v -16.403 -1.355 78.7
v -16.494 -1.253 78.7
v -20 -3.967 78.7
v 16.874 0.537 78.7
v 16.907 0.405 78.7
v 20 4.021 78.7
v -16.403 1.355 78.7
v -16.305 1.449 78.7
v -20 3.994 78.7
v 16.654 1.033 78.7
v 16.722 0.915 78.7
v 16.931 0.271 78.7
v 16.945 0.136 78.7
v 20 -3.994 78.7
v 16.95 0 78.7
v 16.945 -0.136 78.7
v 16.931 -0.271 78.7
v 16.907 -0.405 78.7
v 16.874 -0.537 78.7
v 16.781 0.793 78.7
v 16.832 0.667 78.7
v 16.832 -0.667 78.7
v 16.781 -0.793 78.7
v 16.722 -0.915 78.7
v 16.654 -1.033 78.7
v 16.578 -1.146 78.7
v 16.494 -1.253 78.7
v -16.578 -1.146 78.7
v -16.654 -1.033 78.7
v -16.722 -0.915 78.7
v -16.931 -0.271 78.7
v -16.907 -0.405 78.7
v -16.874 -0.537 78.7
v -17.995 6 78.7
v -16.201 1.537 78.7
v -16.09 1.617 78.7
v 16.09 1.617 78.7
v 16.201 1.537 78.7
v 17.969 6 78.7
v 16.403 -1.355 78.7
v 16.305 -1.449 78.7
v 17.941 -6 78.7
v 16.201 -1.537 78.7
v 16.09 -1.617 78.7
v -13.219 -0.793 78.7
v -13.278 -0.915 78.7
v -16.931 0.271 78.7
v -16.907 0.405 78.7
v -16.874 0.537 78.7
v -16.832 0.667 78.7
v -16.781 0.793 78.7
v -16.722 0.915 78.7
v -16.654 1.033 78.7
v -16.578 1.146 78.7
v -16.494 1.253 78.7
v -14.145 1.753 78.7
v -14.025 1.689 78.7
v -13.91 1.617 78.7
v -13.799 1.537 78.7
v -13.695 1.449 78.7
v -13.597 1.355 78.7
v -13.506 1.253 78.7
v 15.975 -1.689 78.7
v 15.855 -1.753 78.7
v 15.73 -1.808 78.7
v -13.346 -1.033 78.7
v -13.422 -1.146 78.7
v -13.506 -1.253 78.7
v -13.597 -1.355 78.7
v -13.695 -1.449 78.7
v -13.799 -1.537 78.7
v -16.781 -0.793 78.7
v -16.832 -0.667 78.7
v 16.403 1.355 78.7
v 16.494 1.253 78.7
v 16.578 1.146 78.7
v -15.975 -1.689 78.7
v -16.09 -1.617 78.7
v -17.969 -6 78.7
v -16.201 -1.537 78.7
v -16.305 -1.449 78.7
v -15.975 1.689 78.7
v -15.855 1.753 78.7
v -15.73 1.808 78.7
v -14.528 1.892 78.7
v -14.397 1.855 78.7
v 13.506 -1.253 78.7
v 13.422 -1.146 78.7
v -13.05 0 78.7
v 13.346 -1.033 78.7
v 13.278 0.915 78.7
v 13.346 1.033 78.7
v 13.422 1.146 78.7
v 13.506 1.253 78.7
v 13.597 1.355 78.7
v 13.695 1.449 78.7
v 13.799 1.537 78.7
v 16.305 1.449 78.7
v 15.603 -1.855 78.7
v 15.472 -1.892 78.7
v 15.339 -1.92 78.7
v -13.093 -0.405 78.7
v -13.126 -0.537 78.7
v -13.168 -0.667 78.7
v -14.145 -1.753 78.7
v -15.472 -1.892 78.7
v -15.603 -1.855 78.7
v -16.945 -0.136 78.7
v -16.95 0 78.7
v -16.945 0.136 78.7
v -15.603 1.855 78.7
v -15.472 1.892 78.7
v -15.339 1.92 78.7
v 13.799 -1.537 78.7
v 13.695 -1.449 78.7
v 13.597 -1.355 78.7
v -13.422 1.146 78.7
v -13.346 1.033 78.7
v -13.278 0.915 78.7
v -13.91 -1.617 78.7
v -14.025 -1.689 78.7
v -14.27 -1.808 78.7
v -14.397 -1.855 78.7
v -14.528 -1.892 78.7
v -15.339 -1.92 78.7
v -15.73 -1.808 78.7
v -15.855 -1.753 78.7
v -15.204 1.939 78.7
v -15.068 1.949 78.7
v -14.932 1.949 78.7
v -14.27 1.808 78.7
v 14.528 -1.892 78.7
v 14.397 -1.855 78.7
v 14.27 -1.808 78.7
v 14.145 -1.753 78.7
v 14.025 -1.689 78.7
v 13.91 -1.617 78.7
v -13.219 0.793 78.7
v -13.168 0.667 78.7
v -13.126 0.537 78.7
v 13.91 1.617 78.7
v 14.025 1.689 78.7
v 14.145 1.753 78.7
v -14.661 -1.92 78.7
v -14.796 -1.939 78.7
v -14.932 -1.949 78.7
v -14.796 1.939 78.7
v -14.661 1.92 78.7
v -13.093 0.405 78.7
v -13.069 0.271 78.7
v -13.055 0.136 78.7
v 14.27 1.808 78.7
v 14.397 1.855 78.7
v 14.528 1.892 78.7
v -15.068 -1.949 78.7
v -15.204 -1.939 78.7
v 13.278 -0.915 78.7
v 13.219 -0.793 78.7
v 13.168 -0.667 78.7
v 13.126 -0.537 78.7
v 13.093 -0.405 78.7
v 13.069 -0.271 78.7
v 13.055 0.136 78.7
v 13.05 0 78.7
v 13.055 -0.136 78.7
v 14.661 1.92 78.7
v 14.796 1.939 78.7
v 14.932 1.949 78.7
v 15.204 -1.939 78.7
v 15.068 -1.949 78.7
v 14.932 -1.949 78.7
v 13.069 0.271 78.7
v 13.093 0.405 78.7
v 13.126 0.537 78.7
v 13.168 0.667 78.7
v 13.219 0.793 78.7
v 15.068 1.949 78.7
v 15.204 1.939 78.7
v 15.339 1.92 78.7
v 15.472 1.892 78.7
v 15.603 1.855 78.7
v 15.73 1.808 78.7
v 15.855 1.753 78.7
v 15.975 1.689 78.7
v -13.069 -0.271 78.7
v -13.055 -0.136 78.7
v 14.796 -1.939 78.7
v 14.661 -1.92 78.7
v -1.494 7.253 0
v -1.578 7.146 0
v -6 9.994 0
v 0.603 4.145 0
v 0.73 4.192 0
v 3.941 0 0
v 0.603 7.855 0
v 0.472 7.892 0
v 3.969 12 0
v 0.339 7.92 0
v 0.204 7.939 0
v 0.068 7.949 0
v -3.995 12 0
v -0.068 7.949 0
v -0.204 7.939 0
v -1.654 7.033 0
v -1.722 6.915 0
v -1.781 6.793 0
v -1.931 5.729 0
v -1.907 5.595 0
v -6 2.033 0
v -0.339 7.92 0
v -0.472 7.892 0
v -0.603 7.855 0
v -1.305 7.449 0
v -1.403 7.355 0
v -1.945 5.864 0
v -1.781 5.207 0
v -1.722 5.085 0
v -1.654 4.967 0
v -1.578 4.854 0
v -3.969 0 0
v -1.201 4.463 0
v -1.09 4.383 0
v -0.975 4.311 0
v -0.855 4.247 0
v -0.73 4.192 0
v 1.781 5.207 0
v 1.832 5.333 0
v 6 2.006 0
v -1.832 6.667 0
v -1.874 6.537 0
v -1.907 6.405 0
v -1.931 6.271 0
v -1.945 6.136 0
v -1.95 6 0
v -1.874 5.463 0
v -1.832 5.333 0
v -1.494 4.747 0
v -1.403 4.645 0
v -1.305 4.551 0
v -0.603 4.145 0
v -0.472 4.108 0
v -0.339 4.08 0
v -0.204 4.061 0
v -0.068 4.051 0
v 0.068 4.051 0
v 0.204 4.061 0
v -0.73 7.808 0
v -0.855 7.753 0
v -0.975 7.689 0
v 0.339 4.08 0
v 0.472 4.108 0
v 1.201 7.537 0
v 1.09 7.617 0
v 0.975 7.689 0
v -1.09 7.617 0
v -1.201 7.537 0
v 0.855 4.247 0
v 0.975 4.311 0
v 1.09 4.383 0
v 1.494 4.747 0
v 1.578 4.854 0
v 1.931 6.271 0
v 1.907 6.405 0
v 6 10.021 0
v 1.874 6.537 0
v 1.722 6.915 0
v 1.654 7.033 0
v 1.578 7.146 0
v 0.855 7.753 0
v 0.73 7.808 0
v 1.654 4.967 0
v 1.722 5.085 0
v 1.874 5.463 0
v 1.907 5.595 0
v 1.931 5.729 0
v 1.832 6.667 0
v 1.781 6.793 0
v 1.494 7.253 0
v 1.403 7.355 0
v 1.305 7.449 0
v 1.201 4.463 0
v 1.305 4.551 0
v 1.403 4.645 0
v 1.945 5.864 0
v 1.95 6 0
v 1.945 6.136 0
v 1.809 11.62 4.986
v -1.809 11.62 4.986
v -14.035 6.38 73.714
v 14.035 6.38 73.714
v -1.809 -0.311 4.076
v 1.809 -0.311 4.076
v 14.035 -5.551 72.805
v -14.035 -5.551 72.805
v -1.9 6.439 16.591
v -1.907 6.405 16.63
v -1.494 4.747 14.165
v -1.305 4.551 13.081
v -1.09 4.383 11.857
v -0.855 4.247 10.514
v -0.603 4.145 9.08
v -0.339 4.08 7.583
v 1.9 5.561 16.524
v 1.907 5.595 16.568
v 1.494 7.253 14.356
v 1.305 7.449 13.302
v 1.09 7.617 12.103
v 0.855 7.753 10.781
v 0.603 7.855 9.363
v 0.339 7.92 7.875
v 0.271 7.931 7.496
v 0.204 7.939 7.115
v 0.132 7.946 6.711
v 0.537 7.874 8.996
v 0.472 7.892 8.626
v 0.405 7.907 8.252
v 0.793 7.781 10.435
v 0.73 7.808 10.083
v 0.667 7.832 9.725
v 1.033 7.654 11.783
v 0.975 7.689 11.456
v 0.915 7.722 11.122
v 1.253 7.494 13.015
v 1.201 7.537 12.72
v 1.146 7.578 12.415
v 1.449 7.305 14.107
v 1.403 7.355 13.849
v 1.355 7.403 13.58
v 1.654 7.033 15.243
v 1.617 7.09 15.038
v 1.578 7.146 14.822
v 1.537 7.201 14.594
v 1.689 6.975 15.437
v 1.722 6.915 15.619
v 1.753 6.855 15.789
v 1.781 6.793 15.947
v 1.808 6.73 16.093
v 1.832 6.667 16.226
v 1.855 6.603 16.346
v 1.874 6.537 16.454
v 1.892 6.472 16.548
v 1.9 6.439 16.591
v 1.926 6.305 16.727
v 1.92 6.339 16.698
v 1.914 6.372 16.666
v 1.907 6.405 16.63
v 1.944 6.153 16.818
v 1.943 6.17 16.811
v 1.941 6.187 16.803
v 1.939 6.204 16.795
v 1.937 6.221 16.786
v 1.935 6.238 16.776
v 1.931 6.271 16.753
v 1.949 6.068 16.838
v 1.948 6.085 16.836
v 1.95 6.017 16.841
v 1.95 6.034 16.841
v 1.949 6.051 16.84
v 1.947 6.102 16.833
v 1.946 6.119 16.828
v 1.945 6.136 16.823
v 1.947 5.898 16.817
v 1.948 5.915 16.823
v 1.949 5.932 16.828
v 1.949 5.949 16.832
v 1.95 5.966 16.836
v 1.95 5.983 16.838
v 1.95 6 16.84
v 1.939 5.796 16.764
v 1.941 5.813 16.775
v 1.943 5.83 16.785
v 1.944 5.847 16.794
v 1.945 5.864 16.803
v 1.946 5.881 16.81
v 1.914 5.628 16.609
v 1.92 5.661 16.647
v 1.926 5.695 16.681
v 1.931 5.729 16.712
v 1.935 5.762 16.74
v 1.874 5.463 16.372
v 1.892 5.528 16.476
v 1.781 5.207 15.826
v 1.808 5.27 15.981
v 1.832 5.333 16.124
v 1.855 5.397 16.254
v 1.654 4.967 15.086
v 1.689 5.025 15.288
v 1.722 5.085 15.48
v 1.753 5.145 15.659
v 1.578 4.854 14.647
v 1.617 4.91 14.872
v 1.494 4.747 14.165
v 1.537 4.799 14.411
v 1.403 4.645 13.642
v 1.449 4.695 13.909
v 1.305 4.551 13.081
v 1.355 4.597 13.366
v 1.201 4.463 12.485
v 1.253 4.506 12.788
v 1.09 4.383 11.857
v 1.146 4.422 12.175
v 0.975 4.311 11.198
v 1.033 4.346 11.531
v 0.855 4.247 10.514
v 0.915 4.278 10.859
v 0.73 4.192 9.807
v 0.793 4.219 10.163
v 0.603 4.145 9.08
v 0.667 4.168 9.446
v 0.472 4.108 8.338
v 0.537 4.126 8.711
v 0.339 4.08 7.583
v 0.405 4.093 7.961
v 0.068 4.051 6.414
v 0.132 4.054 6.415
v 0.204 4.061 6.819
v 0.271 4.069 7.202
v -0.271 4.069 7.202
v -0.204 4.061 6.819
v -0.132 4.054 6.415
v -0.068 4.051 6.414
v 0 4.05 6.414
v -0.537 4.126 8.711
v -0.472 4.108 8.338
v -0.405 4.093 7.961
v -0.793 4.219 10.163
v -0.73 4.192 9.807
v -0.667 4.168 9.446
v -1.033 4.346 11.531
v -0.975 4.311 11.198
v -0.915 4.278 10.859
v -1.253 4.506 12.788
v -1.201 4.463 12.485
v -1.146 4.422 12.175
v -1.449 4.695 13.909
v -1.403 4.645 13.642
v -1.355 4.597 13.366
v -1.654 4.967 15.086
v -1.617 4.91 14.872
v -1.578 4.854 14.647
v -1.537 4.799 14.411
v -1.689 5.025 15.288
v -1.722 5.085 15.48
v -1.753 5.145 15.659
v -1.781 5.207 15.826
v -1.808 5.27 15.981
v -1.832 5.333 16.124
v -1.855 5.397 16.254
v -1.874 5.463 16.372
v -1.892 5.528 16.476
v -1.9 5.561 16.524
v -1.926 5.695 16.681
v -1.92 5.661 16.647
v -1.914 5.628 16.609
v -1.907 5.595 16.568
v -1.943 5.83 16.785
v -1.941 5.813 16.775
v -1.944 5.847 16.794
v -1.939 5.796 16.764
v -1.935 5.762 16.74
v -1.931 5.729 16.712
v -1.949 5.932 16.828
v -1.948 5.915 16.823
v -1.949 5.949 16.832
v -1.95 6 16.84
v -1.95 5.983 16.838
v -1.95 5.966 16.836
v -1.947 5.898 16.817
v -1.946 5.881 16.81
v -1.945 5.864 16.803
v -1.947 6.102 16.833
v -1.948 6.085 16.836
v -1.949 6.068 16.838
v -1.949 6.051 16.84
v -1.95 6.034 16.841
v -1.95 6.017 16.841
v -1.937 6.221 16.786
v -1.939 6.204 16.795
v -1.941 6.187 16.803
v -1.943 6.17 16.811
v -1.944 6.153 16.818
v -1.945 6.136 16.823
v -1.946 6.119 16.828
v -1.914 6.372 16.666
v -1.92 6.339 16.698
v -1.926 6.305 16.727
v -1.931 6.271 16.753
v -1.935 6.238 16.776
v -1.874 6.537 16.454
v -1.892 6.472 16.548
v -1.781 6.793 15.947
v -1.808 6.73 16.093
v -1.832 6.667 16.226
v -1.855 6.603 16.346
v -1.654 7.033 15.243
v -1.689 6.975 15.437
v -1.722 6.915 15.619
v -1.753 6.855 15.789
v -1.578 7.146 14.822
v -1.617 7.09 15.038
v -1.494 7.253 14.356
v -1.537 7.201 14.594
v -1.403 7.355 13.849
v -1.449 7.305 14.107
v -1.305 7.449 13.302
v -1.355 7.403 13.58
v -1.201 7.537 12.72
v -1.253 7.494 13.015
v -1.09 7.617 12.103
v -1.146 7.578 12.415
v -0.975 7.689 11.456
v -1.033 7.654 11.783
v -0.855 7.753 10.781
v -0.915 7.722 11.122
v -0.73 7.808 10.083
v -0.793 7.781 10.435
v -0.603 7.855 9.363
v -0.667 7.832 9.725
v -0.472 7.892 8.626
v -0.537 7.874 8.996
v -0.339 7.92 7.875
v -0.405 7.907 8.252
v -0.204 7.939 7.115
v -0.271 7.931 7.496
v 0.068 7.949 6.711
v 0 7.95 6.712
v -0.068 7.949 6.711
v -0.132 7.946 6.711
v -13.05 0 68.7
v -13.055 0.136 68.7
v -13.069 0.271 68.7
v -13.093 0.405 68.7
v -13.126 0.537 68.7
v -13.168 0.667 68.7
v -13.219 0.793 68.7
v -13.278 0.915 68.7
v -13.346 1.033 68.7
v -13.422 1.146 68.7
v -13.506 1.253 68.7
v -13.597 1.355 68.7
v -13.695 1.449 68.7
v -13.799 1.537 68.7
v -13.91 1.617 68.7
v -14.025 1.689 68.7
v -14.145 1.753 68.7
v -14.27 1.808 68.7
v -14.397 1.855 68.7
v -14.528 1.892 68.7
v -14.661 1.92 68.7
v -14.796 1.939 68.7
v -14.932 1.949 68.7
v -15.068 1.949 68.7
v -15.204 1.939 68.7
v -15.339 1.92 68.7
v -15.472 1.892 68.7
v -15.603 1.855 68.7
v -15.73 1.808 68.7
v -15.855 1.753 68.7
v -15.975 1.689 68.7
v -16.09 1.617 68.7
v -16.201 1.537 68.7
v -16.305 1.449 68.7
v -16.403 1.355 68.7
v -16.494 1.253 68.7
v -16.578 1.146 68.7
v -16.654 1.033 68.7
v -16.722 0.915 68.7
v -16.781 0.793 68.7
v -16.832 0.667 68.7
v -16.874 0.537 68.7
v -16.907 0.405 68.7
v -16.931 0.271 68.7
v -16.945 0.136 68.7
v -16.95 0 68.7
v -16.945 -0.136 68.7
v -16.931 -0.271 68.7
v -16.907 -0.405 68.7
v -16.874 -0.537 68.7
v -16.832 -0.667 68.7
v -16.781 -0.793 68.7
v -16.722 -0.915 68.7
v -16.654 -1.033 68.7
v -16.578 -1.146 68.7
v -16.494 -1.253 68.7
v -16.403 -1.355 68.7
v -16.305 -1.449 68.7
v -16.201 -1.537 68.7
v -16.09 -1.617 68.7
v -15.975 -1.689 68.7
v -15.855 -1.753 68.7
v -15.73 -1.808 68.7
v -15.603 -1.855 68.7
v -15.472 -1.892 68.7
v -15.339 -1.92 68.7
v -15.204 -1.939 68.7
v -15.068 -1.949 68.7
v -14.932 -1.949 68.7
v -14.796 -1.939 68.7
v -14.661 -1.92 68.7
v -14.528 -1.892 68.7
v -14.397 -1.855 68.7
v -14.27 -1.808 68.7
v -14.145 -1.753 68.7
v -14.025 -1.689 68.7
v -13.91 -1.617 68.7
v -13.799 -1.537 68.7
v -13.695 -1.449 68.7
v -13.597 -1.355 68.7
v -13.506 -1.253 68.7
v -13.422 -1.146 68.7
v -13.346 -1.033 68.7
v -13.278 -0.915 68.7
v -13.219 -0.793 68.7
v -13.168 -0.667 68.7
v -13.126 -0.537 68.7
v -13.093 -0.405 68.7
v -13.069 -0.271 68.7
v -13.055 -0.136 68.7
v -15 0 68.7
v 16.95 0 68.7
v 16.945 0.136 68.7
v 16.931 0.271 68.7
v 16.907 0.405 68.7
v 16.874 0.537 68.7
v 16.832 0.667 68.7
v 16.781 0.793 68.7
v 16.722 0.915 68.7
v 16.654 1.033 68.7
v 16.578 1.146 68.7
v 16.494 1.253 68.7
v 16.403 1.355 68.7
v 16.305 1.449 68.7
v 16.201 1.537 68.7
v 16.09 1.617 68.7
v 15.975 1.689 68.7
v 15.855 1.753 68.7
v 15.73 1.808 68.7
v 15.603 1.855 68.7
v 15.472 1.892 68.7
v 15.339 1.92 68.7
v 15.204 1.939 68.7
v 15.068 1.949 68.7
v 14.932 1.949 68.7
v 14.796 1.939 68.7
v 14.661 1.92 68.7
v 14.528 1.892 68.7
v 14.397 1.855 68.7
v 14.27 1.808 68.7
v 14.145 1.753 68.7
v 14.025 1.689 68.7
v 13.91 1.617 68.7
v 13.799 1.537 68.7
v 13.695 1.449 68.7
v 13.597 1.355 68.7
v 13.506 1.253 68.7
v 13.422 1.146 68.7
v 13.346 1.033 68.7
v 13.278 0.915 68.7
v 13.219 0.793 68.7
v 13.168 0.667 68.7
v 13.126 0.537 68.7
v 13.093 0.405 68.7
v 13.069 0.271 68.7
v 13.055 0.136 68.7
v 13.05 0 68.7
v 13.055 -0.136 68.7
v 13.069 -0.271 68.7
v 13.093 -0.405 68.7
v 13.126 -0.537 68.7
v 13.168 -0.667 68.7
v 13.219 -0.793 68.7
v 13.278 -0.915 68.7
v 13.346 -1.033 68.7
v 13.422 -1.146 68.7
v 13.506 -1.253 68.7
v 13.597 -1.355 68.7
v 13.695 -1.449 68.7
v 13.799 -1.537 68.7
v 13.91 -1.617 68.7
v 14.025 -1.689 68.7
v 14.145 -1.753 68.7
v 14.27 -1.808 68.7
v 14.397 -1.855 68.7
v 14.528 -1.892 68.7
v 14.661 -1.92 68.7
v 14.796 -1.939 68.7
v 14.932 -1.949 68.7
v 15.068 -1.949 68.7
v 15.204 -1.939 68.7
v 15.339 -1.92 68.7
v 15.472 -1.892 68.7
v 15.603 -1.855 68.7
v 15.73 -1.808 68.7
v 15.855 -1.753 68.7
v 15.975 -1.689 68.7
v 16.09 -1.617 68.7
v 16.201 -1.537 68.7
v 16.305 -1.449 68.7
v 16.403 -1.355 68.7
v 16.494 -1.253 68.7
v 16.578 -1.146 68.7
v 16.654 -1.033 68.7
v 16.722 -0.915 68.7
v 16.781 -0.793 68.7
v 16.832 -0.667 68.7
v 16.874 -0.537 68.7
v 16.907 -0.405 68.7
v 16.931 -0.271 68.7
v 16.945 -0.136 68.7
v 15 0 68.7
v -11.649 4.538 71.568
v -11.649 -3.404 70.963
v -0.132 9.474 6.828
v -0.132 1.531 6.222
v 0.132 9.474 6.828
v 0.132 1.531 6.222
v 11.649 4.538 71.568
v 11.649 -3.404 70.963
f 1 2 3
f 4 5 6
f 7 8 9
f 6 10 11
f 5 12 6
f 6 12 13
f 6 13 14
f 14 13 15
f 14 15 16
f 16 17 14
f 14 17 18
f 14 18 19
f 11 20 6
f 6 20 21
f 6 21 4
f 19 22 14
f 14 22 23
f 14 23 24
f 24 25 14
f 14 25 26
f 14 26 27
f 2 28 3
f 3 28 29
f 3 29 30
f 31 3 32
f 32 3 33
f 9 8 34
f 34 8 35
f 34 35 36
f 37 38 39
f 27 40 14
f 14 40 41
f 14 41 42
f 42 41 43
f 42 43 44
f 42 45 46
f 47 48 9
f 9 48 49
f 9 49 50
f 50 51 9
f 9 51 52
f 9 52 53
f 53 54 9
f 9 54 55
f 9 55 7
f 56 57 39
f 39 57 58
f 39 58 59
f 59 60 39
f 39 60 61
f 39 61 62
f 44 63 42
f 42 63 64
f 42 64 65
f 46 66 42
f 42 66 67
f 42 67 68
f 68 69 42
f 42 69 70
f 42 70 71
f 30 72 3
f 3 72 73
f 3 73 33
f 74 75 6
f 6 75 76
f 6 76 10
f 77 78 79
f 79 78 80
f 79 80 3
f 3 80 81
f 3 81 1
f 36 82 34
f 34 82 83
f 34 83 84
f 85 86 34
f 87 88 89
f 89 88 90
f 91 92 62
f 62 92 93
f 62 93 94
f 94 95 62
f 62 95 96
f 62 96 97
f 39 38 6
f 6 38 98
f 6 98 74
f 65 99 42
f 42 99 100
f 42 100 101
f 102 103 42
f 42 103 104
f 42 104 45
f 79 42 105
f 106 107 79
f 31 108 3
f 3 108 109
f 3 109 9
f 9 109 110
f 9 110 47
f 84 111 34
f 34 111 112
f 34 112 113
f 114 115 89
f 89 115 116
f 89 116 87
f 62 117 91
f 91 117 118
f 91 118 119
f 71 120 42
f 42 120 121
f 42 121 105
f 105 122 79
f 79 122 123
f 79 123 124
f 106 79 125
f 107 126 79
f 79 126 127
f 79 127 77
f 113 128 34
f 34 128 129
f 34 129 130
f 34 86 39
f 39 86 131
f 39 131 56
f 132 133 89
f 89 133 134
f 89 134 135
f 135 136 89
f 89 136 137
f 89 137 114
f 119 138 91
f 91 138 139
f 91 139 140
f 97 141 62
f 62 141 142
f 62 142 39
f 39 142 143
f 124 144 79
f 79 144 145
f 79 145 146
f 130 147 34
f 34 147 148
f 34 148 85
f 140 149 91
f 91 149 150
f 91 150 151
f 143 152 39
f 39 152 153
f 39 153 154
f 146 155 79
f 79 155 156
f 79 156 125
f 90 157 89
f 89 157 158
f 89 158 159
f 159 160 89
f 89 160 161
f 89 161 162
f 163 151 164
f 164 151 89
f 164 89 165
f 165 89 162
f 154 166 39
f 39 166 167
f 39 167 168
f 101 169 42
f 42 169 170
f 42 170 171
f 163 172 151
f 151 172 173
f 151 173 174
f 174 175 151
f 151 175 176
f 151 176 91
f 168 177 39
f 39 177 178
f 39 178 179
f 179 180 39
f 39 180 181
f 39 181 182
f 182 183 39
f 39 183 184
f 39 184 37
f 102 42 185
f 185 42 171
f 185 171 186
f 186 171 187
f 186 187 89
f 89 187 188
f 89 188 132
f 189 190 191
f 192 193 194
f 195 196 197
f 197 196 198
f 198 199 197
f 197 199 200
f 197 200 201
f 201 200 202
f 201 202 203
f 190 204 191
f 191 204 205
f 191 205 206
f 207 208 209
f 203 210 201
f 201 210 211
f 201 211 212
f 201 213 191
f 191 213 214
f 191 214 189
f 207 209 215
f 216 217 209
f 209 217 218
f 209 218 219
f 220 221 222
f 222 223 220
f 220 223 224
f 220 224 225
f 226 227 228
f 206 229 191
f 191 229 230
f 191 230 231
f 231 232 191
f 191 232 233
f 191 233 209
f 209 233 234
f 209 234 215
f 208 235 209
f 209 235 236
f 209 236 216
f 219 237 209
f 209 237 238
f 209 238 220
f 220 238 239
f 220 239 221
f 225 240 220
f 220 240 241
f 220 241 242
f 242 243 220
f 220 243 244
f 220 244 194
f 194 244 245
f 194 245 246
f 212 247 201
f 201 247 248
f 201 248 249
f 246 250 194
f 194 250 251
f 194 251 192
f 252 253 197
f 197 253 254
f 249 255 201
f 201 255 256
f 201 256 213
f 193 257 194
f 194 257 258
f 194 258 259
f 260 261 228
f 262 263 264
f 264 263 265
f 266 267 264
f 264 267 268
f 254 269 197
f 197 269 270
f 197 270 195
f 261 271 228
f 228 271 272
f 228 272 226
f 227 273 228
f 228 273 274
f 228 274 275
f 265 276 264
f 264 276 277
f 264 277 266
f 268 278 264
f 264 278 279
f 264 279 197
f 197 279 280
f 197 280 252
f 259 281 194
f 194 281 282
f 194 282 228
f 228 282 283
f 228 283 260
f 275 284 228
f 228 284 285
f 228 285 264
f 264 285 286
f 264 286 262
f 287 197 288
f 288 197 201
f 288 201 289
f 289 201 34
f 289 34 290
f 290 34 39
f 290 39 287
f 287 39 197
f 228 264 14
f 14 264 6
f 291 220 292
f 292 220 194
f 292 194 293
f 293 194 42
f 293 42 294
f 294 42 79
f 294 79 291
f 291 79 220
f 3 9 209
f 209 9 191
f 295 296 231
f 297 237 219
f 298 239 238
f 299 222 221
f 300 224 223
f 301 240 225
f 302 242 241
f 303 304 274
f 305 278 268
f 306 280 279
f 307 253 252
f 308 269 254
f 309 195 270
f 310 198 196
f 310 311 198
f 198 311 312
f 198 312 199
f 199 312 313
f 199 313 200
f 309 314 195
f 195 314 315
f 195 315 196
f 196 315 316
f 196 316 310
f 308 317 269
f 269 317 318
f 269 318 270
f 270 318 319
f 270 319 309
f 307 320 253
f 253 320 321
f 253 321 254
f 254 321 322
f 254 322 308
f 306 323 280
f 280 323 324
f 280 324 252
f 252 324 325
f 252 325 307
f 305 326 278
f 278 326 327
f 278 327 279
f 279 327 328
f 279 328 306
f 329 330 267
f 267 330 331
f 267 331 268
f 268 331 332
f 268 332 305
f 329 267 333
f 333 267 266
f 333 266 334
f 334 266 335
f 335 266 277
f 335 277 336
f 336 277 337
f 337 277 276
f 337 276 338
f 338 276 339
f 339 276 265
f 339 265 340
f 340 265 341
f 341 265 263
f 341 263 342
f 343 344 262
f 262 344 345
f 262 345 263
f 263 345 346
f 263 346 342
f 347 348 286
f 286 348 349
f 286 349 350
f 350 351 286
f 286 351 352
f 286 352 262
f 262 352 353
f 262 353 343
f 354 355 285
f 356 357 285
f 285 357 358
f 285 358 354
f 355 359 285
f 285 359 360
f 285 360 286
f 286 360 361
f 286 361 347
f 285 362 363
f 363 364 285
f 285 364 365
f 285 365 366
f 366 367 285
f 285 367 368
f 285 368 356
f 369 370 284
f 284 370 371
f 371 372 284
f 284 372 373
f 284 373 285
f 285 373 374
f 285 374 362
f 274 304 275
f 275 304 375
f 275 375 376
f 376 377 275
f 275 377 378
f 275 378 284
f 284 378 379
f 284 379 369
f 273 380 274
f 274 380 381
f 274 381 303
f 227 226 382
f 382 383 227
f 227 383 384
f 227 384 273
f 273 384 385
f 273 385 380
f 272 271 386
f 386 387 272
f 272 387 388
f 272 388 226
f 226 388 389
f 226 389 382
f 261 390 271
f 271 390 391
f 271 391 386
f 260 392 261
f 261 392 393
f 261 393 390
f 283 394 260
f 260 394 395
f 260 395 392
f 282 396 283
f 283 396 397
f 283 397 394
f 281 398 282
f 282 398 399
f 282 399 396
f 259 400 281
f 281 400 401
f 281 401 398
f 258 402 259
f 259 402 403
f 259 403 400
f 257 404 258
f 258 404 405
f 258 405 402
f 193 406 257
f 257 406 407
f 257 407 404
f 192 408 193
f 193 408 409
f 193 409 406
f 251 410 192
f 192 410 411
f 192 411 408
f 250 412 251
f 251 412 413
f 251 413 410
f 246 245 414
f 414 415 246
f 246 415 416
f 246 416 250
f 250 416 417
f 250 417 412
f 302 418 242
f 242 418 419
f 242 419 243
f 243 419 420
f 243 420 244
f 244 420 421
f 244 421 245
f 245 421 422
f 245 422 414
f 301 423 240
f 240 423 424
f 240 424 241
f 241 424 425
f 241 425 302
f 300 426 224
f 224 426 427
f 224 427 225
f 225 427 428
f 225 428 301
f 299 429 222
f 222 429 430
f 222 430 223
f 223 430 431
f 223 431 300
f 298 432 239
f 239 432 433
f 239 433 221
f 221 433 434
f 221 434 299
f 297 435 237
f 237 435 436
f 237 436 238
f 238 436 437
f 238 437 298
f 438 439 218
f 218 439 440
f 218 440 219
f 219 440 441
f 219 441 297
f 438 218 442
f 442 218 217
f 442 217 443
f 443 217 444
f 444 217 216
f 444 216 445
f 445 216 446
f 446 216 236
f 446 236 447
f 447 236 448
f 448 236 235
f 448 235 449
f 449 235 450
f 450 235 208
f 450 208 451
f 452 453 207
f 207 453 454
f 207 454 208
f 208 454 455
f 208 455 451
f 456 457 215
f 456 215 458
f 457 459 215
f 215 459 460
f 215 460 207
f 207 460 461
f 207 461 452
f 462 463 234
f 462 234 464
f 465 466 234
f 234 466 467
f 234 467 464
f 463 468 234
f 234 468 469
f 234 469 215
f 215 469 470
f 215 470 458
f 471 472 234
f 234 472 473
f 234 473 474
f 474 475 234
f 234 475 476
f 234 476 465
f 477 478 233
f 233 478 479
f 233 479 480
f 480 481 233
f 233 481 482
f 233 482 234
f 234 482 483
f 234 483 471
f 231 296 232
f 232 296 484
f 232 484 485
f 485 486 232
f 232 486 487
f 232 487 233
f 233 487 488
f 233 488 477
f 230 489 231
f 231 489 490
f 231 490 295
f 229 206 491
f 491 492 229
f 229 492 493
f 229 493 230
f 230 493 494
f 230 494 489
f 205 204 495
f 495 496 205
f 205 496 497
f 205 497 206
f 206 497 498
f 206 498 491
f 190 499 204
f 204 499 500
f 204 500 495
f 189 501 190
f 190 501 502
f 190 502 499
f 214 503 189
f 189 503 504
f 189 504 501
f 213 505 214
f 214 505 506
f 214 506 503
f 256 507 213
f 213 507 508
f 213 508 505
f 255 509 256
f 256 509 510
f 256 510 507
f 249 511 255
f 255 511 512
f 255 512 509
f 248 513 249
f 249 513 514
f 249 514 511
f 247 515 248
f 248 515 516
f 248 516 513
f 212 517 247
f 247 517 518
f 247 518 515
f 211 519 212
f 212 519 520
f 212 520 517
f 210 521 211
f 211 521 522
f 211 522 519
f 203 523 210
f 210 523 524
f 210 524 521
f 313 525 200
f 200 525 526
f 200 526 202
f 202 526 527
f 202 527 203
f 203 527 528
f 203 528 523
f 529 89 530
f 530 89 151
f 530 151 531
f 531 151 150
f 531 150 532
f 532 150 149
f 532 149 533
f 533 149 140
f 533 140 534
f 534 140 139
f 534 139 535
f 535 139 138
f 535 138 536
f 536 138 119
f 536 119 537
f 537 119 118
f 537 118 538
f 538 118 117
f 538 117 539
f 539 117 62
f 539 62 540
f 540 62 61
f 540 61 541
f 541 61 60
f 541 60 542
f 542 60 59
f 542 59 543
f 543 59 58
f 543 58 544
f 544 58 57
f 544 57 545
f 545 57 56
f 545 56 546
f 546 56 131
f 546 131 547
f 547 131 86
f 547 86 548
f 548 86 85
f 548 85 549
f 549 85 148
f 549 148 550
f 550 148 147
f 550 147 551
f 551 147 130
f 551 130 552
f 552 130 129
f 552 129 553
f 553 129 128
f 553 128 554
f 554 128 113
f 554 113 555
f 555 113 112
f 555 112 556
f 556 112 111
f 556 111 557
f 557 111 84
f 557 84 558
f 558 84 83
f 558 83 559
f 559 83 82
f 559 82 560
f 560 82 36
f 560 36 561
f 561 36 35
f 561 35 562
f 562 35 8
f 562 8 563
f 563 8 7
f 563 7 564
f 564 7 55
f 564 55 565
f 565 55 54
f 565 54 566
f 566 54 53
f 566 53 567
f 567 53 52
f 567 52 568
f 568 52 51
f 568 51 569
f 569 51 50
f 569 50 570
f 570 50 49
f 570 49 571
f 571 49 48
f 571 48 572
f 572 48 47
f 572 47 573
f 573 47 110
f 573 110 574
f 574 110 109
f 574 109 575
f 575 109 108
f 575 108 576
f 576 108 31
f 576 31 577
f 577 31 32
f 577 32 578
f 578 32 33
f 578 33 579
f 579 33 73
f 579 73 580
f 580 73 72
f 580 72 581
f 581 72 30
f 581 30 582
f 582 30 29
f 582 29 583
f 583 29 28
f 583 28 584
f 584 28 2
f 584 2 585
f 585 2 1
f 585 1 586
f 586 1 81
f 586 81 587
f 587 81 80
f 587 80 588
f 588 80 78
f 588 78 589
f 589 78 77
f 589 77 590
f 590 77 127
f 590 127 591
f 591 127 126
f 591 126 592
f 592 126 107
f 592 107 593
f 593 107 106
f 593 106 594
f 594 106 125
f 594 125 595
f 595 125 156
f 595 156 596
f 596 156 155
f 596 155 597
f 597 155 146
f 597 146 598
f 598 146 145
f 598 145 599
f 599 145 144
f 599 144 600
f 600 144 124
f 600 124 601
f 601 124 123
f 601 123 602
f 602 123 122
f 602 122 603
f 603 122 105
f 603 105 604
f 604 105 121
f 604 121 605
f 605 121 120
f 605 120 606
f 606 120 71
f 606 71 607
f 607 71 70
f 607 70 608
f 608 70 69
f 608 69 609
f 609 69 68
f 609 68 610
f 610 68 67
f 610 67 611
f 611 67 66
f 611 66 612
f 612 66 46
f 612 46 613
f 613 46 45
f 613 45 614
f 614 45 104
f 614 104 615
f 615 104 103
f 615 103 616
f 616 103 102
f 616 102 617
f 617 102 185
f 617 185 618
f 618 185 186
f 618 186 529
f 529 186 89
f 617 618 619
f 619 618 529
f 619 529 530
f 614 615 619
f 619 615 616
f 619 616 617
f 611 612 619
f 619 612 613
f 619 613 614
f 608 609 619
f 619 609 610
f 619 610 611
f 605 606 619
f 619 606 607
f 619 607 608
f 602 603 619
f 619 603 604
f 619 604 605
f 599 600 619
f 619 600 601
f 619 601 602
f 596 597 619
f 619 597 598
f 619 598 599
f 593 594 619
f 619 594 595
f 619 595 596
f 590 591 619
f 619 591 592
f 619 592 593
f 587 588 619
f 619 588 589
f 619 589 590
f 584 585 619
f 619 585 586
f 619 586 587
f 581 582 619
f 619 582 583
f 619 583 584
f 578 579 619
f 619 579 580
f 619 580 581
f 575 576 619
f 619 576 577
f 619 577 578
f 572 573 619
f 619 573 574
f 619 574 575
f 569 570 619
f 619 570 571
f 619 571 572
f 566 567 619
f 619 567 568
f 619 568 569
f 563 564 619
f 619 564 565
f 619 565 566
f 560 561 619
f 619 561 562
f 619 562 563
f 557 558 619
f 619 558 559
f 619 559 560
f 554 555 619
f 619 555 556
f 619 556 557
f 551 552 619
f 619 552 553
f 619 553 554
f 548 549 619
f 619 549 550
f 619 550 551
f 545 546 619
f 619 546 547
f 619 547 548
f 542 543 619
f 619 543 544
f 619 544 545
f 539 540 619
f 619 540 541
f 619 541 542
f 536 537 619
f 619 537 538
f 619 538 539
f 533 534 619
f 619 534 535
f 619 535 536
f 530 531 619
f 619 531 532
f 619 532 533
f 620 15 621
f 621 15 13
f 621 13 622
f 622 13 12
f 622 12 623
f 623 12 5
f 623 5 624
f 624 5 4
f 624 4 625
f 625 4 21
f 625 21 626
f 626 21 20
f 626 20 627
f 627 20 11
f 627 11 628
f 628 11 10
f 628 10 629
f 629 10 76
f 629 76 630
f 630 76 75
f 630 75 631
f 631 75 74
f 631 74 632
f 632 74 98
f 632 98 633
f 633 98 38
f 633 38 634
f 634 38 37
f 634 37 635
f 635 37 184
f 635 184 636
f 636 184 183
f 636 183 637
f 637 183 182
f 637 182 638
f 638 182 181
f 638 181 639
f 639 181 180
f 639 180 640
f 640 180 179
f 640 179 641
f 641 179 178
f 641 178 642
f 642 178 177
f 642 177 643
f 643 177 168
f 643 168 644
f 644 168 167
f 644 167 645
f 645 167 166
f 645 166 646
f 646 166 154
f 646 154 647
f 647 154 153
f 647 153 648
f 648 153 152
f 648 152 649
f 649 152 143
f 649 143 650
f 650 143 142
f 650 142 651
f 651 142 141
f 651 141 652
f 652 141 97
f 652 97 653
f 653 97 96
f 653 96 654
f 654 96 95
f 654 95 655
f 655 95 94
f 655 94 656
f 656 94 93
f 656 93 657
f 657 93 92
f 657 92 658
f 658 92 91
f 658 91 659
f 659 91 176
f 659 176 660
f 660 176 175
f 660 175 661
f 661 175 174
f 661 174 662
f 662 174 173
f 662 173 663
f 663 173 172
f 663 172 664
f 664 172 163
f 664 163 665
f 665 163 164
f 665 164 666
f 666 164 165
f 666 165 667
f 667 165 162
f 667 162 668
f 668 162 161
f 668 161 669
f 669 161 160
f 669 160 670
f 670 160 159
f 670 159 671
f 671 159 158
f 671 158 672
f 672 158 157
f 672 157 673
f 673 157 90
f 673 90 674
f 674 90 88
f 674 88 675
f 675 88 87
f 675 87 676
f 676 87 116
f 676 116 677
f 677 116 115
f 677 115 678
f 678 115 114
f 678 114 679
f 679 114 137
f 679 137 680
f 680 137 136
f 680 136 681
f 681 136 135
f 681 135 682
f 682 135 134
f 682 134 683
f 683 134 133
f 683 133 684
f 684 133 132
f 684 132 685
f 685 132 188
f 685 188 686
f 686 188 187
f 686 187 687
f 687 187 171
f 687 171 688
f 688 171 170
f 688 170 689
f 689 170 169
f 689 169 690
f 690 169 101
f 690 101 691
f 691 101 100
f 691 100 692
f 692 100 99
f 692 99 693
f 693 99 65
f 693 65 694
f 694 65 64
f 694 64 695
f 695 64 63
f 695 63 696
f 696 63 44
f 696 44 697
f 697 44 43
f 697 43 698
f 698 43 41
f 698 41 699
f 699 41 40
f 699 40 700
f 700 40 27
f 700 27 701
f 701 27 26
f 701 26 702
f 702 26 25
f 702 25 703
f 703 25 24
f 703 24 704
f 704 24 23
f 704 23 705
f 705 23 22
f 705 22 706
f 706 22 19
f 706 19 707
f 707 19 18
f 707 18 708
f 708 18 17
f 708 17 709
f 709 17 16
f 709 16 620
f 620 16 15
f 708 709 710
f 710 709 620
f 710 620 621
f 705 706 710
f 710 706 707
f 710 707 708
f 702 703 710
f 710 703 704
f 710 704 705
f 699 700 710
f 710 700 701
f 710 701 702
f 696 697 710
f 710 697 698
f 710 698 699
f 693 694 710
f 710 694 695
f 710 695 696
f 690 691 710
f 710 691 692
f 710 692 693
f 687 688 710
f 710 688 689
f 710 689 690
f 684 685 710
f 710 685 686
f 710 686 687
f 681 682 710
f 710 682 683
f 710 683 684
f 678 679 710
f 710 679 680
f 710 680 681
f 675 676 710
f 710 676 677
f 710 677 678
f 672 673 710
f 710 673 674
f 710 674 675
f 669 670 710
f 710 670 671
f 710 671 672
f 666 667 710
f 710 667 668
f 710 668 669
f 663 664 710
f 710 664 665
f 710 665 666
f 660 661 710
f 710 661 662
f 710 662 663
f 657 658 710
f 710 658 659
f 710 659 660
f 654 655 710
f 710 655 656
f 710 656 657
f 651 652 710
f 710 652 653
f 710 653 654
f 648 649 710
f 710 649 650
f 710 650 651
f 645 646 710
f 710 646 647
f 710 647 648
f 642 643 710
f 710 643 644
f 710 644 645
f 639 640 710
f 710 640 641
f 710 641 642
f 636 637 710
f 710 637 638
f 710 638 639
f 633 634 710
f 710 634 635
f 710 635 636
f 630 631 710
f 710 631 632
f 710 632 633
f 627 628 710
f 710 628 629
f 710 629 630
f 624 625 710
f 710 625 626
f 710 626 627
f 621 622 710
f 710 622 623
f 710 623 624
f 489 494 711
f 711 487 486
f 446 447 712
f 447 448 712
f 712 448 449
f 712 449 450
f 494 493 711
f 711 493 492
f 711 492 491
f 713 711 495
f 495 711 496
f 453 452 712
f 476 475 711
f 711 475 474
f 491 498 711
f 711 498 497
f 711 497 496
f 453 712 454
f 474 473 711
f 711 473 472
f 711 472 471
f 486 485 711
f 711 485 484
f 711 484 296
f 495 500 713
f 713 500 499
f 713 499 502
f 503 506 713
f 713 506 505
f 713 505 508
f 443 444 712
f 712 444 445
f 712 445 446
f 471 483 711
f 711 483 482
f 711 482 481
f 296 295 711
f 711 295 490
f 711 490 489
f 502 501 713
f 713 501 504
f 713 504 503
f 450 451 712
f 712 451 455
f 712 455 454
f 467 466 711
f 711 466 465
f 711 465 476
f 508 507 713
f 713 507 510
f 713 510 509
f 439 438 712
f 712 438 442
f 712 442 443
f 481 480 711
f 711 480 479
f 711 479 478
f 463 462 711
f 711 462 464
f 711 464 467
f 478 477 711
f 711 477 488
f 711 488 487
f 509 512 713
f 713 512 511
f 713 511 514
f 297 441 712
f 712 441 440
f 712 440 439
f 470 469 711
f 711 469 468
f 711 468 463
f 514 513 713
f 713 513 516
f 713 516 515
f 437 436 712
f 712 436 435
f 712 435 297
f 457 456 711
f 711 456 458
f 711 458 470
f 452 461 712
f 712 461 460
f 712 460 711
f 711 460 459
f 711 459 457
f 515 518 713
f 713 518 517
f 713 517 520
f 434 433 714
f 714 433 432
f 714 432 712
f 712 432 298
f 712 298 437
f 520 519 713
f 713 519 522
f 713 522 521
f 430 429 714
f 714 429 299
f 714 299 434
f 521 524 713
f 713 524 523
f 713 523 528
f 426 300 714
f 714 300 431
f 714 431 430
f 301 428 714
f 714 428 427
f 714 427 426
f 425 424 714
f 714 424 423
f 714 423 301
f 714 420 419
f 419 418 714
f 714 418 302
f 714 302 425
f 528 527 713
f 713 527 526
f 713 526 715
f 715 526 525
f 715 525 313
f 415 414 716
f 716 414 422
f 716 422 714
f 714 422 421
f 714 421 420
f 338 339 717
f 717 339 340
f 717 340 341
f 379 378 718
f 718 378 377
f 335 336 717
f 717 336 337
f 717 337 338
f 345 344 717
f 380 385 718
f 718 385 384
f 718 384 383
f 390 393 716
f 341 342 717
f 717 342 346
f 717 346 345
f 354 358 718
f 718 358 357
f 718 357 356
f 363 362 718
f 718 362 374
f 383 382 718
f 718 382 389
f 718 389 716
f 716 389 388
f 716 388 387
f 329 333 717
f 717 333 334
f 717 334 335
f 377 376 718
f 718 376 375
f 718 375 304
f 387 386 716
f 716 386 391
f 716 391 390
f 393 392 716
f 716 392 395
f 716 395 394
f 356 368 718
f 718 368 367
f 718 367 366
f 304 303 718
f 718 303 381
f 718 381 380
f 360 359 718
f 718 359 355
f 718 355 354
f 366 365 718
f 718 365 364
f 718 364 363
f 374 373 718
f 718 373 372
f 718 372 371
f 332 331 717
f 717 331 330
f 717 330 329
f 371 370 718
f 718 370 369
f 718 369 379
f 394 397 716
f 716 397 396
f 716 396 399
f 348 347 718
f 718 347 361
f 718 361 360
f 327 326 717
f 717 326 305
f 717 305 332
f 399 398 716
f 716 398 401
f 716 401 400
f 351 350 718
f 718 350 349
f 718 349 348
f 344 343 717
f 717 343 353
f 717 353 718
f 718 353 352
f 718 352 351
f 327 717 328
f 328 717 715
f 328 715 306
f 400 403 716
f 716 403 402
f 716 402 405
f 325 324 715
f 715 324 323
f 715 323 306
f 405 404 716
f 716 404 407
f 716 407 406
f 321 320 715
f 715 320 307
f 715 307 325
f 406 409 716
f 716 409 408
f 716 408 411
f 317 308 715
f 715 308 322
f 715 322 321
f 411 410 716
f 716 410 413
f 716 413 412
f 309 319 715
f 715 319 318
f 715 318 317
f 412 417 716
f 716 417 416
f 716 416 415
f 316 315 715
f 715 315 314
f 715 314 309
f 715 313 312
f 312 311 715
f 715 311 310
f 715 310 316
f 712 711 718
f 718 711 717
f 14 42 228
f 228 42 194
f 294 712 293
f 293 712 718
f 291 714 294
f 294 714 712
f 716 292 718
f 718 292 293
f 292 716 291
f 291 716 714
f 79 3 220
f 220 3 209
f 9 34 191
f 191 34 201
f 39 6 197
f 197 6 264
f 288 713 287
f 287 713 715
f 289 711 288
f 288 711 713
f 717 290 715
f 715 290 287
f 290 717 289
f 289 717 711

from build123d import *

# Parameters (mm, degrees)
SKETCH3_R          = 1.95
CUT_EXTRUDE1_DEPTH = 20
SKETCH4_R          = 1.95
CUT_EXTRUDE2_DEPTH = 10
CUT_EXTRUDE3_DEPTH = 83.297374679
CHAMFER1_SIZE      = 2
CHAMFER1_SIZE_2    = 1.973894665
CHAMFER1_SIZE_3    = 2.02716926


with BuildPart() as part:
    # Loft1: read off the stored shape, not the designer's step
    # Loft1: loft between two sections, ruled curve by curve
    loft1_from = [
        Edge.make_line((-20, 6, 78.7), (20, 6, 78.7)),
        Edge.make_line((20, 6, 78.7), (20, -6, 78.7)),
        Edge.make_line((20, -6, 78.7), (-20, -6, 78.7)),
        Edge.make_line((-20, -6, 78.7), (-20, 6, 78.7)),
    ]
    loft1_to = [
        Edge.make_line((-6, 12, 0), (6, 12, 0)),
        Edge.make_line((6, 12, 0), (6, 0, 0)),
        Edge.make_line((6, 0, 0), (-6, 0, 0)),
        Edge.make_line((-6, 0, 0), (-6, 12, 0)),
    ]
    loft1 = Solid(Shell([*[Face.make_surface_from_curves(loft1_from[k], loft1_to[k]) for k in range(4)], Face(Wire(loft1_from)), Face(Wire(loft1_to))]))
    add(loft1)

    # Sketch3 → Cut-Extrude1 (cut)
    with BuildSketch(Plane(origin=(0, 0, 0), x_dir=(-1, 0, 0), z_dir=(0, 0, -1))):
        with Locations((0, 6)):
            Circle(SKETCH3_R)
    extrude(amount=-CUT_EXTRUDE1_DEPTH, mode=Mode.SUBTRACT)

    # Sketch4 → Cut-Extrude2 (cut)
    with BuildSketch(Plane.XY.offset(78.7)):
        with Locations((15, 0)):
            Circle(SKETCH4_R)
        with Locations((-15, 0)):
            Circle(SKETCH4_R)
    extrude(amount=-CUT_EXTRUDE2_DEPTH, mode=Mode.SUBTRACT)

    # Sketch5 → Cut-Extrude3 (cut, through all)
    with BuildSketch(Plane(origin=(0, 11.930654655, 0.90957977), x_dir=(1, 0, 0), z_dir=(0, 0.9971064242500265, 0.07601827885006555))):
        Polygon((-0.132366824, -6.087780654), (-11.649103048, -71.016165915), (11.649103048, -71.016165915), (0.132366824, -6.087780654), align=None)
    extrude(amount=-CUT_EXTRUDE3_DEPTH, mode=Mode.SUBTRACT)

    # Chamfer1
    # the kernel refuses this chamfer: 2.02716926, 2, 1.973894665 mm, written as the material it takes off along each edge
    with BuildSketch(Plane(origin=(-16.792469024, -5.398526703, 70.81067526), x_dir=(0, 0.997106424250026, 0.07601827885007145), z_dir=(1, 0, 0))) as chamfer1_piece_1_section:
        Polygon((CHAMFER1_SIZE, 0), (0, CHAMFER1_SIZE), (0, 0), align=None)
    chamfer1_piece_1 = extrude(amount=33.584938049, mode=Mode.PRIVATE)
    chamfer1_piece_1 = split(chamfer1_piece_1, bisect_by=Plane(origin=(-15.283859564, -6.946592893, 70.961020054), z_dir=(0.6962389816670421, -0.7144486731771176, 0.06938568874556392)), keep=Keep.TOP, mode=Mode.PRIVATE)
    chamfer1_piece_1 = split(chamfer1_piece_1, bisect_by=Plane(origin=(-2.020822768, 9.759462645, 69.338564567), z_dir=(-0.6962389816670431, -0.7144486731771169, 0.0693856887455642)), keep=Keep.TOP, mode=Mode.PRIVATE)
    add(chamfer1_piece_1, mode=Mode.SUBTRACT)
    with BuildSketch(Plane(origin=(-12.547391008, -5.783507257, 75.86033686), x_dir=(0, 0.9971064242500265, 0.07601827885006568), z_dir=(0.1746498234023745, 0.0748499243153034, -0.9817815072690628))) as chamfer1_piece_2_section:
        Polygon((CHAMFER1_SIZE, 0), (0, -CHAMFER1_SIZE), (0, 0), align=None)
    chamfer1_piece_2 = extrude(amount=76.22860352, mode=Mode.PRIVATE)
    chamfer1_piece_2 = split(chamfer1_piece_2, bisect_by=Plane(origin=(-12.547391008, 32.845065601, 42.704525209), z_dir=(0, -0.7588137546208746, 0.6513076736828541)), keep=Keep.TOP, mode=Mode.PRIVATE)
    chamfer1_piece_2 = split(chamfer1_piece_2, bisect_by=Plane(origin=(-12.547391008, -7.194759635, 74.216140486), z_dir=(0, -0.6513076736828518, -0.7588137546208766)), keep=Keep.TOP, mode=Mode.PRIVATE)
    add(chamfer1_piece_2, mode=Mode.SUBTRACT)
    with BuildSketch(Plane(origin=(12.547391008, -5.783507257, 75.86033686), x_dir=(1.43368408515118e-15, 0.9971064242500265, 0.07601827885006535), z_dir=(-0.17464982340237462, 0.07484992431530343, -0.9817815072690628))) as chamfer1_piece_3_section:
        Polygon((CHAMFER1_SIZE, 0), (0, CHAMFER1_SIZE), (0, 0), align=None)
    chamfer1_piece_3 = extrude(amount=76.22860352, mode=Mode.PRIVATE)
    chamfer1_piece_3 = split(chamfer1_piece_3, bisect_by=Plane(origin=(12.547391008, 32.845065601, 42.704525209), z_dir=(0, -0.7588137546208746, 0.6513076736828541)), keep=Keep.TOP, mode=Mode.PRIVATE)
    chamfer1_piece_3 = split(chamfer1_piece_3, bisect_by=Plane(origin=(12.547391008, -7.194759635, 74.216140486), z_dir=(0, -0.6513076736828518, -0.7588137546208766)), keep=Keep.TOP, mode=Mode.PRIVATE)
    add(chamfer1_piece_3, mode=Mode.SUBTRACT)
    with BuildSketch(Plane(origin=(-16.792469024, 6.532127952, 71.72025503), x_dir=(0, -0.07601827885006952, 0.9971064242500263), z_dir=(1, 0, 0))) as chamfer1_piece_4_section:
        Polygon((CHAMFER1_SIZE, 0), (0, CHAMFER1_SIZE), (0, 0), align=None)
    chamfer1_piece_4 = extrude(amount=33.584938049, mode=Mode.PRIVATE)
    chamfer1_piece_4 = split(chamfer1_piece_4, bisect_by=Plane(origin=(-15.283859564, 8.039510514, 72.103543821), z_dir=(0.6962389816670405, 0.6956727551266126, 0.1768917696835863)), keep=Keep.TOP, mode=Mode.PRIVATE)
    chamfer1_piece_4 = split(chamfer1_piece_4, bisect_by=Plane(origin=(-2.020822768, -8.227505047, 67.967258263), z_dir=(-0.6962389816670409, 0.6956727551266121, 0.17689176968358636)), keep=Keep.TOP, mode=Mode.PRIVATE)
    add(chamfer1_piece_4, mode=Mode.SUBTRACT)
    with BuildSketch(Plane(origin=(12.547391008, 6.147147398, 76.769916631), x_dir=(0.9846306105263636, 0.013276578976513069, -0.17414446090864058), z_dir=(-0.17464982340237462, 0.07484992431530339, -0.9817815072690629))) as chamfer1_piece_5_section:
        Polygon((CHAMFER1_SIZE, 0), (0, CHAMFER1_SIZE), (0, 0), align=None)
    chamfer1_piece_5 = extrude(amount=76.22860352, mode=Mode.PRIVATE)
    chamfer1_piece_5 = split(chamfer1_piece_5, bisect_by=Plane(origin=(12.547391008, 7.791343772, 75.358664253), z_dir=(0, 0.7588137546208767, -0.6513076736828517)), keep=Keep.TOP, mode=Mode.PRIVATE)
    chamfer1_piece_5 = split(chamfer1_piece_5, bisect_by=Plane(origin=(12.547391008, -27.008664253, 38.141343772), z_dir=(0, 0.6513076736828546, 0.7588137546208742)), keep=Keep.TOP, mode=Mode.PRIVATE)
    add(chamfer1_piece_5, mode=Mode.SUBTRACT)
    with BuildSketch(Plane(origin=(0.765921135, 11.852852602, 1.930083369), x_dir=(-0.9846306105263636, 0.013276578976513059, -0.17414446090864047), z_dir=(-0.1746498234023745, -0.07484992431530339, 0.9817815072690629))) as chamfer1_piece_6_section:
        Polygon((CHAMFER1_SIZE, 0), (0, CHAMFER1_SIZE), (0, 0), align=None)
    chamfer1_piece_6 = extrude(amount=76.22860352, mode=Mode.PRIVATE)
    chamfer1_piece_6 = split(chamfer1_piece_6, bisect_by=Plane(origin=(0.765921135, -26.775720256, 35.08589502), z_dir=(0, 0.7588137546208767, -0.6513076736828517)), keep=Keep.TOP, mode=Mode.PRIVATE)
    chamfer1_piece_6 = split(chamfer1_piece_6, bisect_by=Plane(origin=(0.765921135, 13.26410498, 3.574279744), z_dir=(0, 0.6513076736828546, 0.7588137546208742)), keep=Keep.TOP, mode=Mode.PRIVATE)
    add(chamfer1_piece_6, mode=Mode.SUBTRACT)
    with BuildSketch(Plane(origin=(-5.2757328, -0.462782607, 6.070165199), x_dir=(0, 0.0760182788500654, -0.9971064242500265), z_dir=(1, 0, 0))) as chamfer1_piece_7_section:
        Polygon((CHAMFER1_SIZE, 0), (0, CHAMFER1_SIZE), (0, 0), align=None)
    chamfer1_piece_7 = extrude(amount=10.5514656, mode=Mode.PRIVATE)
    chamfer1_piece_7 = split(chamfer1_piece_7, bisect_by=Plane(origin=(-3.767123339, -2.010848797, 6.220509994), z_dir=(0.6962389816670421, -0.7144486731771176, 0.06938568874556392)), keep=Keep.TOP, mode=Mode.PRIVATE)
    chamfer1_piece_7 = split(chamfer1_piece_7, bisect_by=Plane(origin=(-1.669532821, 3.237735258, 5.710779017), z_dir=(-0.6962389816670431, -0.7144486731771169, 0.0693856887455642)), keep=Keep.TOP, mode=Mode.PRIVATE)
    add(chamfer1_piece_7, mode=Mode.SUBTRACT)
    with BuildSketch(Plane(origin=(5.2757328, 11.467872048, 6.97974497), x_dir=(0, 0.0760182788500616, -0.9971064242500267), z_dir=(-1, 0, 0))) as chamfer1_piece_8_section:
        Polygon((CHAMFER1_SIZE, 0), (0, CHAMFER1_SIZE), (0, 0), align=None)
    chamfer1_piece_8 = extrude(amount=10.5514656, mode=Mode.PRIVATE)
    chamfer1_piece_8 = split(chamfer1_piece_8, bisect_by=Plane(origin=(1.669532821, 7.864604864, 6.063526383), z_dir=(0.6962389816670405, 0.6956727551266126, 0.1768917696835863)), keep=Keep.TOP, mode=Mode.PRIVATE)
    chamfer1_piece_8 = split(chamfer1_piece_8, bisect_by=Plane(origin=(3.767123339, 12.97525461, 7.36303376), z_dir=(-0.6962389816670409, 0.6956727551266121, 0.17689176968358636)), keep=Keep.TOP, mode=Mode.PRIVATE)
    add(chamfer1_piece_8, mode=Mode.SUBTRACT)
    with BuildSketch(Plane(origin=(20.898287959, 5.615019446, 83.7496616), x_dir=(-0.9846306105263637, -0.013276578976516254, 0.17414446090864033), z_dir=(-0.17464982340237456, 0.07484992431530338, -0.9817815072690627))) as chamfer1_piece_9:
        Polygon((CHAMFER1_SIZE, 0), (CHAMFER1_SIZE_2 * 0.0133139270738, -CHAMFER1_SIZE_2 * 0.999911365776), (0, 0), align=None)
    extrude(amount=90.447133647, mode=Mode.SUBTRACT)
    with BuildSketch(Plane(origin=(-20.898287959, 5.615019446, 83.7496616), x_dir=(0.9846306105263636, -0.013276578976516233, 0.17414446090864033), z_dir=(0.17464982340237456, 0.07484992431530338, -0.9817815072690627))) as chamfer1_piece_10:
        Polygon((CHAMFER1_SIZE_2, 0), (CHAMFER1_SIZE * 0.0133139270733, CHAMFER1_SIZE * 0.999911365745), (0, 0), align=None)
    extrude(amount=90.447133647, mode=Mode.SUBTRACT)
    with BuildSketch(Plane(origin=(-20.910812675, -6.390348289, 83.820068396), x_dir=(-0.013109300142731543, 0.9971948098691615, 0.07369299437378306), z_dir=(0.17464982340237456, 0.07484992431530338, -0.9817815072690627))) as chamfer1_piece_11:
        Polygon((CHAMFER1_SIZE_3, 0), (-CHAMFER1_SIZE * 0.0133139270733, CHAMFER1_SIZE * 0.999911365745), (0, 0), align=None)
    extrude(amount=90.590560255, mode=Mode.SUBTRACT)
    with BuildSketch(Plane(origin=(20.910812675, -6.390348289, 83.820068396), x_dir=(0.01310930014273147, 0.9971948098691616, 0.07369299437378309), z_dir=(-0.17464982340237456, 0.07484992431530338, -0.9817815072690627))) as chamfer1_piece_12:
        Polygon((CHAMFER1_SIZE, 0), (-CHAMFER1_SIZE_3 * 0.0133139270755, -CHAMFER1_SIZE_3 * 0.99991136591), (0, 0), align=None)
    extrude(amount=90.590560255, mode=Mode.SUBTRACT)


solid = part.part
